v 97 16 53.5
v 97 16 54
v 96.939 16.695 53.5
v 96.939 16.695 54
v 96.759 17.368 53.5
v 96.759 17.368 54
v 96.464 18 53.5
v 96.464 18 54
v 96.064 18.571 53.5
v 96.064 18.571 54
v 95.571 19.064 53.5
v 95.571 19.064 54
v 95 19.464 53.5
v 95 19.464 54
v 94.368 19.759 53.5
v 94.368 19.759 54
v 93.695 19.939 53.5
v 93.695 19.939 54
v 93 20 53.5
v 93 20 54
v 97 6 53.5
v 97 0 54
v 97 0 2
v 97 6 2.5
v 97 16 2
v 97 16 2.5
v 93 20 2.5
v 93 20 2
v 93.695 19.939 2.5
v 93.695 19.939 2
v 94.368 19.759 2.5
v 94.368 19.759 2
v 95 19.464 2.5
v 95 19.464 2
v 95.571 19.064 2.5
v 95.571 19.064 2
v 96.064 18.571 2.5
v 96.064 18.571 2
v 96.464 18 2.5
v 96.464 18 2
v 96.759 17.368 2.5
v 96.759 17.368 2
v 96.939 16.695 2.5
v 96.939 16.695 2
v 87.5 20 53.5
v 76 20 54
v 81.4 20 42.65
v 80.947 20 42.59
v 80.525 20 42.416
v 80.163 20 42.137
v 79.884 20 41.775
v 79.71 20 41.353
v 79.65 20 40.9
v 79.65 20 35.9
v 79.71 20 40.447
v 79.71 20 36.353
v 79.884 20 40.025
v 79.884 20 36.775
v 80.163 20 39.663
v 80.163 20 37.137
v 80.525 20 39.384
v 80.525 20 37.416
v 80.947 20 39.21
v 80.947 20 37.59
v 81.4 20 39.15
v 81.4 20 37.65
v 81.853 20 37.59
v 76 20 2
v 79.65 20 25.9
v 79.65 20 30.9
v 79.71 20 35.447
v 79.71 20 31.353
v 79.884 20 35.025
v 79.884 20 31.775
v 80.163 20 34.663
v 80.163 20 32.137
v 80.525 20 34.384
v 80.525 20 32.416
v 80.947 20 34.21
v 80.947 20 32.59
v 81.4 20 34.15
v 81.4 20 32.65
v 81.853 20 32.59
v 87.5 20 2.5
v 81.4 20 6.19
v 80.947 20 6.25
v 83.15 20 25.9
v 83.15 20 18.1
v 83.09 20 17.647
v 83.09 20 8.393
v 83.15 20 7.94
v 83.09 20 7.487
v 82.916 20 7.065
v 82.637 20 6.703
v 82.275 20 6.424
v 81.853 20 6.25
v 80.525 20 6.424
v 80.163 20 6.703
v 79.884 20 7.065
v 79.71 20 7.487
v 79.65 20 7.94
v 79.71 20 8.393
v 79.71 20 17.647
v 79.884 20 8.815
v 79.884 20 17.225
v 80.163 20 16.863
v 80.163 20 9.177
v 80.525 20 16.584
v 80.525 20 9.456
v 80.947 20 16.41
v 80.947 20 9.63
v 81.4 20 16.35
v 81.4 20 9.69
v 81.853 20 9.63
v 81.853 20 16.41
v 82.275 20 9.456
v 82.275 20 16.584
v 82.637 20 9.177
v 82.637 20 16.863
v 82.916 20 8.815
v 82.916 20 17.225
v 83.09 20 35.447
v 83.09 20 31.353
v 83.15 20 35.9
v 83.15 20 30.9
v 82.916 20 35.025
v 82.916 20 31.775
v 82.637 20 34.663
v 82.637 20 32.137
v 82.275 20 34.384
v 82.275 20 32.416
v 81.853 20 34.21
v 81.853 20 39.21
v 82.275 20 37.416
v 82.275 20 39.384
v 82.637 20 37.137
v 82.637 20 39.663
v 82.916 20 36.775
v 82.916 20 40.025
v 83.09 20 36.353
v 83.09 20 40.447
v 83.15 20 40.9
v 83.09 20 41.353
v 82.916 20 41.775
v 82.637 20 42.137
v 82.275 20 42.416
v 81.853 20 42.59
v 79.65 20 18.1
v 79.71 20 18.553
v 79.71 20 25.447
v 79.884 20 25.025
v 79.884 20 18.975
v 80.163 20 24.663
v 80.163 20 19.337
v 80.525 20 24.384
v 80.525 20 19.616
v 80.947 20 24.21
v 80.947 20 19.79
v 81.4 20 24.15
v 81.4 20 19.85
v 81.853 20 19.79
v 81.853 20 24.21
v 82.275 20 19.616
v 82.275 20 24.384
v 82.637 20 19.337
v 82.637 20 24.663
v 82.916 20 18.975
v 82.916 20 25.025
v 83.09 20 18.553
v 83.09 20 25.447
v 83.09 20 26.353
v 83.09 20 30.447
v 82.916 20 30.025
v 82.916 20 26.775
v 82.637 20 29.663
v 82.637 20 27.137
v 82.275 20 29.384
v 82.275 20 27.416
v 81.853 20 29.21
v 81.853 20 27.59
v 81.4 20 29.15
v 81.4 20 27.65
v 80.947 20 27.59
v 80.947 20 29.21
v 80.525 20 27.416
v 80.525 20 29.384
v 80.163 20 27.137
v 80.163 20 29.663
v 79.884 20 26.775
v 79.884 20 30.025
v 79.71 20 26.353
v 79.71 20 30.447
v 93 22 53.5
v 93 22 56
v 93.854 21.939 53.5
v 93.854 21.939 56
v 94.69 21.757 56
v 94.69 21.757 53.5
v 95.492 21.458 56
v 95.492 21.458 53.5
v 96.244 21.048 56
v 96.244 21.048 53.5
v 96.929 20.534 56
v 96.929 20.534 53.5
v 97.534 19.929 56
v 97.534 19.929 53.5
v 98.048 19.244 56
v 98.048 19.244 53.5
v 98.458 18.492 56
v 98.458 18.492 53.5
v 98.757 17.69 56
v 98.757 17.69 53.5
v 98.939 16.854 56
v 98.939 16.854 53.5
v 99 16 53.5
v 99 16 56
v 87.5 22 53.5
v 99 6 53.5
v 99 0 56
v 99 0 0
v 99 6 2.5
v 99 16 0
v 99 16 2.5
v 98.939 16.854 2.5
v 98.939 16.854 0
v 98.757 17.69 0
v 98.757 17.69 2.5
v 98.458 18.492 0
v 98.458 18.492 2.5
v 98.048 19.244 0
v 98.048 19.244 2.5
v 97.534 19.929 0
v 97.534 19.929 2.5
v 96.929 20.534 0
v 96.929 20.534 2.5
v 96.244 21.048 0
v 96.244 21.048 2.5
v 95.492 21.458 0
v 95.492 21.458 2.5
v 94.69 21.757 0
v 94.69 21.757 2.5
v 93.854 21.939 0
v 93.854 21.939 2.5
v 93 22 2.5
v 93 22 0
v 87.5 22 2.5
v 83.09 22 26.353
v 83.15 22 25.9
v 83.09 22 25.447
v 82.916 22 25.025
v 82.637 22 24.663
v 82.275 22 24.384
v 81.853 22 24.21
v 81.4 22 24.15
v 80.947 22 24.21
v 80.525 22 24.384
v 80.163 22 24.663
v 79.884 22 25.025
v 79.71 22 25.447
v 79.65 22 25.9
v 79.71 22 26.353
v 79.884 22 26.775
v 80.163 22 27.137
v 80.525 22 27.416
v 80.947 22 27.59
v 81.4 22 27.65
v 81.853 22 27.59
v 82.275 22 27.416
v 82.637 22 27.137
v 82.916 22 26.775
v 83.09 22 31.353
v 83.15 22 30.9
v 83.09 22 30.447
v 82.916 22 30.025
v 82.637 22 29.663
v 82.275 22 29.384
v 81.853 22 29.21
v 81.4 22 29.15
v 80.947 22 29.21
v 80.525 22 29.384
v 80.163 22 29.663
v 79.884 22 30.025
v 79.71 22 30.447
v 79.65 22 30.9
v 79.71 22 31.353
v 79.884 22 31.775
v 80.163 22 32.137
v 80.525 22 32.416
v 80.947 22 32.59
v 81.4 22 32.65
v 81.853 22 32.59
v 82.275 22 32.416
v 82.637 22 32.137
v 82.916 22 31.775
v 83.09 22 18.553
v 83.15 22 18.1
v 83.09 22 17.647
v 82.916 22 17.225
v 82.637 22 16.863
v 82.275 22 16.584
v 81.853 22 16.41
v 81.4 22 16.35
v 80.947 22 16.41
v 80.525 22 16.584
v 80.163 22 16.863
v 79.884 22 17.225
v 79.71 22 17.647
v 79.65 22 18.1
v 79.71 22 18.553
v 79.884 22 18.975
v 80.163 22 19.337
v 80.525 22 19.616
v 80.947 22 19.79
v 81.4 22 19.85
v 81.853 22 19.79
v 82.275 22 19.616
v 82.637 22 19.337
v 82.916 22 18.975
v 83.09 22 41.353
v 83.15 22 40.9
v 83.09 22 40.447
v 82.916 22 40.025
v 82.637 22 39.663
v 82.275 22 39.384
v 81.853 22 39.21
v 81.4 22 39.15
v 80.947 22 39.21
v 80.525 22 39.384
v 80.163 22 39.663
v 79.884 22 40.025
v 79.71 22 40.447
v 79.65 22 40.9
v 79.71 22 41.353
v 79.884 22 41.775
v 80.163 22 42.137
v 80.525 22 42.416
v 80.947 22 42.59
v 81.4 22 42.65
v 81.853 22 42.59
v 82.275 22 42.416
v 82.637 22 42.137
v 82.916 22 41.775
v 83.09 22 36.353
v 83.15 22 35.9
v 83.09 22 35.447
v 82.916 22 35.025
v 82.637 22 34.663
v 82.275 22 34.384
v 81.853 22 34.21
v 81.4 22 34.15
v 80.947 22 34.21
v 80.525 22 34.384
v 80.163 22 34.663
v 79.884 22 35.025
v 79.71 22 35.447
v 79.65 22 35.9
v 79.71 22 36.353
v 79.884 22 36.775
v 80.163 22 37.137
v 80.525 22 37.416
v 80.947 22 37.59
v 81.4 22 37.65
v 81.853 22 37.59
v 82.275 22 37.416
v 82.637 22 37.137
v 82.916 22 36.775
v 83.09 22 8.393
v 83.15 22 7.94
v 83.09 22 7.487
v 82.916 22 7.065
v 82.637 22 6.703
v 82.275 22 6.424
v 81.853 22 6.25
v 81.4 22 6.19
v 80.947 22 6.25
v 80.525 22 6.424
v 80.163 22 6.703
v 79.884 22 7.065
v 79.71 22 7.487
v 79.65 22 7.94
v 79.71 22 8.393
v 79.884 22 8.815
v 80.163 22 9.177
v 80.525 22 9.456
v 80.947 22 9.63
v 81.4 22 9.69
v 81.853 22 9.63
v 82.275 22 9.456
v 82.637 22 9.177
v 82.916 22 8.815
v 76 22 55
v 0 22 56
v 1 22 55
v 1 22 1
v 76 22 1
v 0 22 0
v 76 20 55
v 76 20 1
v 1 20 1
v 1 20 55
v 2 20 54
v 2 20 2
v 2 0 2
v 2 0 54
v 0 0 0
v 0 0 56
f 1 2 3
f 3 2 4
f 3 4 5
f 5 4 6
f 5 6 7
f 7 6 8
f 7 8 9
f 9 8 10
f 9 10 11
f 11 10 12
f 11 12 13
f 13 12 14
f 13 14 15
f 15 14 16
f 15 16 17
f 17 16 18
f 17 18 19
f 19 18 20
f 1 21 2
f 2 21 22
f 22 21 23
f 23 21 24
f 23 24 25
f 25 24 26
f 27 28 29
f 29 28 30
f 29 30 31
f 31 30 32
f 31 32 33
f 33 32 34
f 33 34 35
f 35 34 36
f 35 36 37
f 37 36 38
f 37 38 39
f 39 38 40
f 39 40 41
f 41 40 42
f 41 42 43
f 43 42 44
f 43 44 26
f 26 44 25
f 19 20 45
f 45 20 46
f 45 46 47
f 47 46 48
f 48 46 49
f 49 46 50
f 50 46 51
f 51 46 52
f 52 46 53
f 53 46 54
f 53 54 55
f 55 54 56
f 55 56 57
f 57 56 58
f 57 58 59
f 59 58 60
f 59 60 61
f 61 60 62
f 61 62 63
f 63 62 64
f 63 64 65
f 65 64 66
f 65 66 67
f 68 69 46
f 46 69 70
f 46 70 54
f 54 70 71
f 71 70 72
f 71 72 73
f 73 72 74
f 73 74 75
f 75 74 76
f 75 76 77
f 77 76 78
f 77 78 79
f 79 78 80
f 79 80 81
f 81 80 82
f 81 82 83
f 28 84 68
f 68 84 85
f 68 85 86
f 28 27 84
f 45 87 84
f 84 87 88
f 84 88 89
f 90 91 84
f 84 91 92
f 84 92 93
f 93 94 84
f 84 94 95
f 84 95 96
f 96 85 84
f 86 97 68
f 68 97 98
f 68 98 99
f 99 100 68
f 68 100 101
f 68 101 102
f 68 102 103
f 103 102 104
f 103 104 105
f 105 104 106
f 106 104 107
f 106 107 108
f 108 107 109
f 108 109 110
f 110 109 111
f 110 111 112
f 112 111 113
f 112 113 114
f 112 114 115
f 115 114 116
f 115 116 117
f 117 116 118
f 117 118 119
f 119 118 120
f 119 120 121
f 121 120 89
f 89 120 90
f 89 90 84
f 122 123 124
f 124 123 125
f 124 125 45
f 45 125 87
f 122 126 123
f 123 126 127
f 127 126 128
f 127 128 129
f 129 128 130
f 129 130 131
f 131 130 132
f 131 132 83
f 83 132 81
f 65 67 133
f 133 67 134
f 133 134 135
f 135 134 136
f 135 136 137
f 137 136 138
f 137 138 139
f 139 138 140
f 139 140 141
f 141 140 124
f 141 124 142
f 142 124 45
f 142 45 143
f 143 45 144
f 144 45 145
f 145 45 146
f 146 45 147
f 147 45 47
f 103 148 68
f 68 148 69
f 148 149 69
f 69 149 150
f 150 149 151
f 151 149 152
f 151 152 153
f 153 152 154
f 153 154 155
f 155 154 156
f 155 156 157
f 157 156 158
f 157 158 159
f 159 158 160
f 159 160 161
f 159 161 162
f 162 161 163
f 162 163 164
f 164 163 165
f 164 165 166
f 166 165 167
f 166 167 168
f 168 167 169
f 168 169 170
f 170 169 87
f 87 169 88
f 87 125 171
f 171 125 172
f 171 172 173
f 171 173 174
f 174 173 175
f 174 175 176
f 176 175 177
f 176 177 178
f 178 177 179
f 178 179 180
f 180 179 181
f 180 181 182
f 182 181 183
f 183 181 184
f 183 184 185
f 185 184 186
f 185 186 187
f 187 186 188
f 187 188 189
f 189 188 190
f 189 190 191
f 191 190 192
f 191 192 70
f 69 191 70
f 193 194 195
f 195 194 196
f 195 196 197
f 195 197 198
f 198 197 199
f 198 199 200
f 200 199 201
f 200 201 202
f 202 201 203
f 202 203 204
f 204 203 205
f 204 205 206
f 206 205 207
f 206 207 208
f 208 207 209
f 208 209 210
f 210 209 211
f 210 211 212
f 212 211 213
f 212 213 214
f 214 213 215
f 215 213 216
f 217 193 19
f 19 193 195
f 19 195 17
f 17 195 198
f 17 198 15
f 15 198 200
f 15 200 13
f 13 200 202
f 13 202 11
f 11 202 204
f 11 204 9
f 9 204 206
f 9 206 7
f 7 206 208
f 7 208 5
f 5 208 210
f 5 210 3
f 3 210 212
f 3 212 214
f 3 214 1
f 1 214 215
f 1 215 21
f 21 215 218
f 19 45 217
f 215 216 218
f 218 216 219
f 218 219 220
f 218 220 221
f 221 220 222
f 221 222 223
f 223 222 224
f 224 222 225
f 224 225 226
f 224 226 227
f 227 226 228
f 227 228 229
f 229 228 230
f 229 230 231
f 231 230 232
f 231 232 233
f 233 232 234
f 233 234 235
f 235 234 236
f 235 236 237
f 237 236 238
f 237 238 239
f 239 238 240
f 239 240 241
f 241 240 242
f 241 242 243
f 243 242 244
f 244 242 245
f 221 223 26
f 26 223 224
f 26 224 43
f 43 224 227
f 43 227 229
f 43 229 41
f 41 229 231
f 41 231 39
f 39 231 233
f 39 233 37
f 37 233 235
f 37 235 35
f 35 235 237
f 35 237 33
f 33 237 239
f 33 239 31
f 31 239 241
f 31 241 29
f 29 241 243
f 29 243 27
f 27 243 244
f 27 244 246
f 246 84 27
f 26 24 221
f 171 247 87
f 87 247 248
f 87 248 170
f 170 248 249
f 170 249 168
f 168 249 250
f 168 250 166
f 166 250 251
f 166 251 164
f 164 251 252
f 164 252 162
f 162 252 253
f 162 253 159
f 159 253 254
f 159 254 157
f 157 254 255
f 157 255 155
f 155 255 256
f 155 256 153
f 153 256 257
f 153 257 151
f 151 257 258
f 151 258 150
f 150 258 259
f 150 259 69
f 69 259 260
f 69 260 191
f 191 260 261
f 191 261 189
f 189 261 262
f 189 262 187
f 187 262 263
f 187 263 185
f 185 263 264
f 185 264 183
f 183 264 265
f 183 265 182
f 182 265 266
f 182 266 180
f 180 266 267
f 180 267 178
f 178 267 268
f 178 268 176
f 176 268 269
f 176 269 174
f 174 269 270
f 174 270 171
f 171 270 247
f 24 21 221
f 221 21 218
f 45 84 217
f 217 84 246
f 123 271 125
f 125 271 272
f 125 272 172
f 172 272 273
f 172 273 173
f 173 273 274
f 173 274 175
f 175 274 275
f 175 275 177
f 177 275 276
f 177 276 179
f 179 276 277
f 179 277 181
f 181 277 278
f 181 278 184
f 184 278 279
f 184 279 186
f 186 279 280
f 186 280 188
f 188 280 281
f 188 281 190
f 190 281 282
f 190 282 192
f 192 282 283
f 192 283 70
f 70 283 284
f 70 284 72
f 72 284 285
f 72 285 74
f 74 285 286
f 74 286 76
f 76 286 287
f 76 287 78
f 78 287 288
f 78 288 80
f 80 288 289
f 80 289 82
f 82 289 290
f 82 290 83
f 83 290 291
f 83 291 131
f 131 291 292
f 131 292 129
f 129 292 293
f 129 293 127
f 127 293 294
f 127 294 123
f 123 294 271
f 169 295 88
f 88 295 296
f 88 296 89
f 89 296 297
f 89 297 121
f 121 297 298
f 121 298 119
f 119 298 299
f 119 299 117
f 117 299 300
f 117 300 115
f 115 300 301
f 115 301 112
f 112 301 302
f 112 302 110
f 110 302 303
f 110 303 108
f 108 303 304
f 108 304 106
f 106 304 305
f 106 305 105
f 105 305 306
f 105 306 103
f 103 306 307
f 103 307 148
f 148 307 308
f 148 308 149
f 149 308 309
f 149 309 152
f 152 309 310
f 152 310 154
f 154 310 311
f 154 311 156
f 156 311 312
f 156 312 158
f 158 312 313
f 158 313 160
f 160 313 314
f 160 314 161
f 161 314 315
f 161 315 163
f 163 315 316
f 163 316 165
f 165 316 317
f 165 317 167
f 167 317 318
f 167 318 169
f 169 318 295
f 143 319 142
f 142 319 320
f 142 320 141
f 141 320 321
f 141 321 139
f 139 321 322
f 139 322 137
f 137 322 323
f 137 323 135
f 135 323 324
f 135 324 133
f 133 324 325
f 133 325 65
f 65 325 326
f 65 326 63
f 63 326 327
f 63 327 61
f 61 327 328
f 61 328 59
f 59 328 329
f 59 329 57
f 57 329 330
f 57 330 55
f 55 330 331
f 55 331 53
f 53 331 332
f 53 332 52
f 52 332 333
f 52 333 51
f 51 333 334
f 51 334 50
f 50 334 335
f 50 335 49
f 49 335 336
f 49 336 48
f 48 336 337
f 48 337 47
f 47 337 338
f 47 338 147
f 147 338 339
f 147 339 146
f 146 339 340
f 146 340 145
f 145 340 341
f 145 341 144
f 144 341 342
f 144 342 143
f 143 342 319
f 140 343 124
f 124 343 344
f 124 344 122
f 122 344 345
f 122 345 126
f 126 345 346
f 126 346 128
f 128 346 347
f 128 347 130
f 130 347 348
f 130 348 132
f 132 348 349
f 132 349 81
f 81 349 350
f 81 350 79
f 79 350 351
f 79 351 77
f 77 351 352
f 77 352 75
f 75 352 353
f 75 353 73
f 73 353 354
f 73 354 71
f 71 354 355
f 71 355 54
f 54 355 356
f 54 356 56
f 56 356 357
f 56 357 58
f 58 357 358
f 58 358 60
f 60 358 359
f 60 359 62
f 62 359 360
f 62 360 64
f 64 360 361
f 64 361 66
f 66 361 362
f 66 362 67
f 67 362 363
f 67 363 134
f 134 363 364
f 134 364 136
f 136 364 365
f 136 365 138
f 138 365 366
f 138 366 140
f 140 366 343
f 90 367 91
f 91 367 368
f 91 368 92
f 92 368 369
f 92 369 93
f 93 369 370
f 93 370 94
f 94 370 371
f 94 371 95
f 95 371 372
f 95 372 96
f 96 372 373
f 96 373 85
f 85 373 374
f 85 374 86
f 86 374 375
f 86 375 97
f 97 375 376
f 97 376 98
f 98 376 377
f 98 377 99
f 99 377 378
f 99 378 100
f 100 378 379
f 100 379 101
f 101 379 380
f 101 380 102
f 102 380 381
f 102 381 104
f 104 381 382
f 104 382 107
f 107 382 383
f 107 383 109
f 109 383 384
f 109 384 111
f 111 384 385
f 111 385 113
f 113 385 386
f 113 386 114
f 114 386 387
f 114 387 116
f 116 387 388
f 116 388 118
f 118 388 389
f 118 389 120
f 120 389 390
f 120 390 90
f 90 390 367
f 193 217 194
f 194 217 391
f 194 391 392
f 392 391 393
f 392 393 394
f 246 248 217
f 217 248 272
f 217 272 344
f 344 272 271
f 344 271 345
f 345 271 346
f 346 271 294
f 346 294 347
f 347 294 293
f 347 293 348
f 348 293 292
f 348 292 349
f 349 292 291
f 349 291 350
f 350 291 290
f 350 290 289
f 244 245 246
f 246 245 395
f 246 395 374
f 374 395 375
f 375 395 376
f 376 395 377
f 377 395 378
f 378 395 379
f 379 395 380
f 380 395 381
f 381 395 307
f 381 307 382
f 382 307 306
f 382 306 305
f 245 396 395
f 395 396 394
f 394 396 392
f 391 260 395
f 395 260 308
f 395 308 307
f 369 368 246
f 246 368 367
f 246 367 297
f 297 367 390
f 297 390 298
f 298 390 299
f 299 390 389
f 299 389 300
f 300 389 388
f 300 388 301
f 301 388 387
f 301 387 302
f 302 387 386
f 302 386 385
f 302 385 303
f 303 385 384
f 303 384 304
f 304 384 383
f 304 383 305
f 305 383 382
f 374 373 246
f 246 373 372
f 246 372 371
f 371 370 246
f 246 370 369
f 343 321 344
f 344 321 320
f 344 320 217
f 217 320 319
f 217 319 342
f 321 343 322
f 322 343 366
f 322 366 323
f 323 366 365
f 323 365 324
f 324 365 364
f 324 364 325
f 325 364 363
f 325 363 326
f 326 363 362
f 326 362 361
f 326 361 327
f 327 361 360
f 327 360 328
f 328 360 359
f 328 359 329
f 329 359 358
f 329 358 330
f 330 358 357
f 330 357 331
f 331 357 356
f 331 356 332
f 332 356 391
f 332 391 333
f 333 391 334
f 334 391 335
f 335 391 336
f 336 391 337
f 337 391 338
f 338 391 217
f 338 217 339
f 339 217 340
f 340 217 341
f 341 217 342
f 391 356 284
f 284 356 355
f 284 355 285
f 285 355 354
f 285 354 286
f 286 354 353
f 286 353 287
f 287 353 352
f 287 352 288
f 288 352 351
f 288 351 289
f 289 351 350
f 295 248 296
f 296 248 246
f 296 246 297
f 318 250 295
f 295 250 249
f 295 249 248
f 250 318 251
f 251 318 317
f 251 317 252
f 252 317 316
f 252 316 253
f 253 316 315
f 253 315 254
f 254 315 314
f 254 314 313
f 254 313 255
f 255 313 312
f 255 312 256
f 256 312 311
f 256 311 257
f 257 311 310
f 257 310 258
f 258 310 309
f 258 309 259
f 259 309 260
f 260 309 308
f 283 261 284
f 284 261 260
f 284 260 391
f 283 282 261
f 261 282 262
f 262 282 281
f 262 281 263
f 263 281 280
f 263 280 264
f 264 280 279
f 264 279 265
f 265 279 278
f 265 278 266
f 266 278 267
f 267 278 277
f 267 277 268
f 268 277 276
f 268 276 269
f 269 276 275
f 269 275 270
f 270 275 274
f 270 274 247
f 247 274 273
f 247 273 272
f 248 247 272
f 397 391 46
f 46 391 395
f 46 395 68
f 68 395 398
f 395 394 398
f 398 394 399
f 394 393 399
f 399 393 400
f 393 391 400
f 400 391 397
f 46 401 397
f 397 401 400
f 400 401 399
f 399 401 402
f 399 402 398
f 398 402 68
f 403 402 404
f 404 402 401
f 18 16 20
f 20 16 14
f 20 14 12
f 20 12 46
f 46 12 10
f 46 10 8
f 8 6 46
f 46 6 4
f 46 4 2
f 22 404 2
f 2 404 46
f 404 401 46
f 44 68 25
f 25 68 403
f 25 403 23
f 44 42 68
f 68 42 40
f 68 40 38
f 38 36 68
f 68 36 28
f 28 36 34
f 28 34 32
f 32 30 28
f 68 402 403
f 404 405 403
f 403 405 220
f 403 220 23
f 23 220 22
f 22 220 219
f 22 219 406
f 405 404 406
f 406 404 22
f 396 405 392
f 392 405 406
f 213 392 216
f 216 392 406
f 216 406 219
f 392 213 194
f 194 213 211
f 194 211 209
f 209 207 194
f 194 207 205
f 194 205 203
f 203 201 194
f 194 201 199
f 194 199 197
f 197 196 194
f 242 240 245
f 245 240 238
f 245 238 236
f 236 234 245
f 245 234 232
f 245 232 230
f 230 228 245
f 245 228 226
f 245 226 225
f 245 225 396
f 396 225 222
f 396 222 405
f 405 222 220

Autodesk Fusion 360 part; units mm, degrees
sketch "Boceto1" plane through (0, 0, 0) normal (0, 0, 1) x (1, 0, 0)
  line L0 (0, 0) -> (99, 0)
  line L1 (99, 0) -> (99, 22)
  line L2 (99, 22) -> (0, 22)
  line L3 (0, 22) -> (0, 0)
  dimension "d1" = 22
  dimension "d2" = 99
extrude "Extruir1" add sketch "Boceto1" along normal blind 56
shell "Vaciado1" thickness 2 removed faces 1 at (33, 0, 18.6667)
sketch "Boceto2" plane through (0, 22, 0) normal (0, 1, 0) x (-1, 0, 0)
  line L0 (-99, 0) -> (0, 0)
  line L1 (0, 0) -> (0, 56)
  line L2 (0, 56) -> (-99, 56)
  line L3 (-99, 56) -> (-99, 0)
  line L4 (-1, 1) -> (-76, 1)
  line L5 (-76, 1) -> (-76, 55)
  line L6 (-76, 55) -> (-1, 55)
  line L7 (-1, 55) -> (-1, 1)
  dimension "d6" = 1
  dimension "d7" = 1
  dimension "d8" = 1
  dimension "d9" = 75
extrude "Extruir2" cut sketch "Boceto2" against normal blind 2 contours L4 L5 L6 L7
sketch "Boceto3" plane through (0, 22, 0) normal (0, 1, 0) x (-1, 0, 0)
  line L0 (-76, 1) -> (-76, 55)
  line L1 (-76, 55) -> (-1, 55)
  line L2 (-1, 55) -> (-1, 1)
  line L3 (-1, 1) -> (-76, 1)
  line L4 (-99, 0) -> (0, 0)
  line L5 (0, 0) -> (0, 56)
  line L6 (0, 56) -> (-99, 56)
  line L7 (-99, 56) -> (-99, 0)
  line L8 (-99, 2.5) -> (-87.5, 2.5)
  line L9 (-87.5, 2.5) -> (-87.5, 53.5)
  line L10 (-87.5, 53.5) -> (-99, 53.5)
  line L11 (-99, 53.5) -> (-99, 2.5)
  circle A0 centre (-81.4, 40.9) radius 1.75
  circle A1 centre (-81.4, 18.1) radius 1.75
  circle A2 centre (-81.4, 7.94) radius 1.75
  circle A3 centre (-81.4, 35.9) radius 1.75
  circle A4 centre (-81.4, 30.9) radius 1.75
  circle A5 centre (-81.4, 25.9) radius 1.75
  dimension "d12" = 2.5
  dimension "d13" = 2.5
  dimension "d14" = 11.5
  dimension "d29" = 0
  dimension "d30" = -15
  dimension "d31" = 6.1
  dimension "d32" = 3.5
  dimension "d33" = 3.5
  dimension "d34" = 3.5
  dimension "d35" = 10.16
  dimension "d36" = 12.6
  dimension "d37" = 7.8
extrude "Extruir3" cut sketch "Boceto3" against normal blind 16 contours L7 L8 L9 L10 L11 | A0 | A1 | A2 | A3 | A4 | A5
fillet "Empalme1" radius 6 2 edges at (99, 22, 1.25) (99, 22, 54.75)
fillet "Empalme1" radius 4 2 edges at (97, 20, 2.25) (97, 20, 53.75)
equation "d35 = ( 4 * 2.54 ) * 1 mm"
